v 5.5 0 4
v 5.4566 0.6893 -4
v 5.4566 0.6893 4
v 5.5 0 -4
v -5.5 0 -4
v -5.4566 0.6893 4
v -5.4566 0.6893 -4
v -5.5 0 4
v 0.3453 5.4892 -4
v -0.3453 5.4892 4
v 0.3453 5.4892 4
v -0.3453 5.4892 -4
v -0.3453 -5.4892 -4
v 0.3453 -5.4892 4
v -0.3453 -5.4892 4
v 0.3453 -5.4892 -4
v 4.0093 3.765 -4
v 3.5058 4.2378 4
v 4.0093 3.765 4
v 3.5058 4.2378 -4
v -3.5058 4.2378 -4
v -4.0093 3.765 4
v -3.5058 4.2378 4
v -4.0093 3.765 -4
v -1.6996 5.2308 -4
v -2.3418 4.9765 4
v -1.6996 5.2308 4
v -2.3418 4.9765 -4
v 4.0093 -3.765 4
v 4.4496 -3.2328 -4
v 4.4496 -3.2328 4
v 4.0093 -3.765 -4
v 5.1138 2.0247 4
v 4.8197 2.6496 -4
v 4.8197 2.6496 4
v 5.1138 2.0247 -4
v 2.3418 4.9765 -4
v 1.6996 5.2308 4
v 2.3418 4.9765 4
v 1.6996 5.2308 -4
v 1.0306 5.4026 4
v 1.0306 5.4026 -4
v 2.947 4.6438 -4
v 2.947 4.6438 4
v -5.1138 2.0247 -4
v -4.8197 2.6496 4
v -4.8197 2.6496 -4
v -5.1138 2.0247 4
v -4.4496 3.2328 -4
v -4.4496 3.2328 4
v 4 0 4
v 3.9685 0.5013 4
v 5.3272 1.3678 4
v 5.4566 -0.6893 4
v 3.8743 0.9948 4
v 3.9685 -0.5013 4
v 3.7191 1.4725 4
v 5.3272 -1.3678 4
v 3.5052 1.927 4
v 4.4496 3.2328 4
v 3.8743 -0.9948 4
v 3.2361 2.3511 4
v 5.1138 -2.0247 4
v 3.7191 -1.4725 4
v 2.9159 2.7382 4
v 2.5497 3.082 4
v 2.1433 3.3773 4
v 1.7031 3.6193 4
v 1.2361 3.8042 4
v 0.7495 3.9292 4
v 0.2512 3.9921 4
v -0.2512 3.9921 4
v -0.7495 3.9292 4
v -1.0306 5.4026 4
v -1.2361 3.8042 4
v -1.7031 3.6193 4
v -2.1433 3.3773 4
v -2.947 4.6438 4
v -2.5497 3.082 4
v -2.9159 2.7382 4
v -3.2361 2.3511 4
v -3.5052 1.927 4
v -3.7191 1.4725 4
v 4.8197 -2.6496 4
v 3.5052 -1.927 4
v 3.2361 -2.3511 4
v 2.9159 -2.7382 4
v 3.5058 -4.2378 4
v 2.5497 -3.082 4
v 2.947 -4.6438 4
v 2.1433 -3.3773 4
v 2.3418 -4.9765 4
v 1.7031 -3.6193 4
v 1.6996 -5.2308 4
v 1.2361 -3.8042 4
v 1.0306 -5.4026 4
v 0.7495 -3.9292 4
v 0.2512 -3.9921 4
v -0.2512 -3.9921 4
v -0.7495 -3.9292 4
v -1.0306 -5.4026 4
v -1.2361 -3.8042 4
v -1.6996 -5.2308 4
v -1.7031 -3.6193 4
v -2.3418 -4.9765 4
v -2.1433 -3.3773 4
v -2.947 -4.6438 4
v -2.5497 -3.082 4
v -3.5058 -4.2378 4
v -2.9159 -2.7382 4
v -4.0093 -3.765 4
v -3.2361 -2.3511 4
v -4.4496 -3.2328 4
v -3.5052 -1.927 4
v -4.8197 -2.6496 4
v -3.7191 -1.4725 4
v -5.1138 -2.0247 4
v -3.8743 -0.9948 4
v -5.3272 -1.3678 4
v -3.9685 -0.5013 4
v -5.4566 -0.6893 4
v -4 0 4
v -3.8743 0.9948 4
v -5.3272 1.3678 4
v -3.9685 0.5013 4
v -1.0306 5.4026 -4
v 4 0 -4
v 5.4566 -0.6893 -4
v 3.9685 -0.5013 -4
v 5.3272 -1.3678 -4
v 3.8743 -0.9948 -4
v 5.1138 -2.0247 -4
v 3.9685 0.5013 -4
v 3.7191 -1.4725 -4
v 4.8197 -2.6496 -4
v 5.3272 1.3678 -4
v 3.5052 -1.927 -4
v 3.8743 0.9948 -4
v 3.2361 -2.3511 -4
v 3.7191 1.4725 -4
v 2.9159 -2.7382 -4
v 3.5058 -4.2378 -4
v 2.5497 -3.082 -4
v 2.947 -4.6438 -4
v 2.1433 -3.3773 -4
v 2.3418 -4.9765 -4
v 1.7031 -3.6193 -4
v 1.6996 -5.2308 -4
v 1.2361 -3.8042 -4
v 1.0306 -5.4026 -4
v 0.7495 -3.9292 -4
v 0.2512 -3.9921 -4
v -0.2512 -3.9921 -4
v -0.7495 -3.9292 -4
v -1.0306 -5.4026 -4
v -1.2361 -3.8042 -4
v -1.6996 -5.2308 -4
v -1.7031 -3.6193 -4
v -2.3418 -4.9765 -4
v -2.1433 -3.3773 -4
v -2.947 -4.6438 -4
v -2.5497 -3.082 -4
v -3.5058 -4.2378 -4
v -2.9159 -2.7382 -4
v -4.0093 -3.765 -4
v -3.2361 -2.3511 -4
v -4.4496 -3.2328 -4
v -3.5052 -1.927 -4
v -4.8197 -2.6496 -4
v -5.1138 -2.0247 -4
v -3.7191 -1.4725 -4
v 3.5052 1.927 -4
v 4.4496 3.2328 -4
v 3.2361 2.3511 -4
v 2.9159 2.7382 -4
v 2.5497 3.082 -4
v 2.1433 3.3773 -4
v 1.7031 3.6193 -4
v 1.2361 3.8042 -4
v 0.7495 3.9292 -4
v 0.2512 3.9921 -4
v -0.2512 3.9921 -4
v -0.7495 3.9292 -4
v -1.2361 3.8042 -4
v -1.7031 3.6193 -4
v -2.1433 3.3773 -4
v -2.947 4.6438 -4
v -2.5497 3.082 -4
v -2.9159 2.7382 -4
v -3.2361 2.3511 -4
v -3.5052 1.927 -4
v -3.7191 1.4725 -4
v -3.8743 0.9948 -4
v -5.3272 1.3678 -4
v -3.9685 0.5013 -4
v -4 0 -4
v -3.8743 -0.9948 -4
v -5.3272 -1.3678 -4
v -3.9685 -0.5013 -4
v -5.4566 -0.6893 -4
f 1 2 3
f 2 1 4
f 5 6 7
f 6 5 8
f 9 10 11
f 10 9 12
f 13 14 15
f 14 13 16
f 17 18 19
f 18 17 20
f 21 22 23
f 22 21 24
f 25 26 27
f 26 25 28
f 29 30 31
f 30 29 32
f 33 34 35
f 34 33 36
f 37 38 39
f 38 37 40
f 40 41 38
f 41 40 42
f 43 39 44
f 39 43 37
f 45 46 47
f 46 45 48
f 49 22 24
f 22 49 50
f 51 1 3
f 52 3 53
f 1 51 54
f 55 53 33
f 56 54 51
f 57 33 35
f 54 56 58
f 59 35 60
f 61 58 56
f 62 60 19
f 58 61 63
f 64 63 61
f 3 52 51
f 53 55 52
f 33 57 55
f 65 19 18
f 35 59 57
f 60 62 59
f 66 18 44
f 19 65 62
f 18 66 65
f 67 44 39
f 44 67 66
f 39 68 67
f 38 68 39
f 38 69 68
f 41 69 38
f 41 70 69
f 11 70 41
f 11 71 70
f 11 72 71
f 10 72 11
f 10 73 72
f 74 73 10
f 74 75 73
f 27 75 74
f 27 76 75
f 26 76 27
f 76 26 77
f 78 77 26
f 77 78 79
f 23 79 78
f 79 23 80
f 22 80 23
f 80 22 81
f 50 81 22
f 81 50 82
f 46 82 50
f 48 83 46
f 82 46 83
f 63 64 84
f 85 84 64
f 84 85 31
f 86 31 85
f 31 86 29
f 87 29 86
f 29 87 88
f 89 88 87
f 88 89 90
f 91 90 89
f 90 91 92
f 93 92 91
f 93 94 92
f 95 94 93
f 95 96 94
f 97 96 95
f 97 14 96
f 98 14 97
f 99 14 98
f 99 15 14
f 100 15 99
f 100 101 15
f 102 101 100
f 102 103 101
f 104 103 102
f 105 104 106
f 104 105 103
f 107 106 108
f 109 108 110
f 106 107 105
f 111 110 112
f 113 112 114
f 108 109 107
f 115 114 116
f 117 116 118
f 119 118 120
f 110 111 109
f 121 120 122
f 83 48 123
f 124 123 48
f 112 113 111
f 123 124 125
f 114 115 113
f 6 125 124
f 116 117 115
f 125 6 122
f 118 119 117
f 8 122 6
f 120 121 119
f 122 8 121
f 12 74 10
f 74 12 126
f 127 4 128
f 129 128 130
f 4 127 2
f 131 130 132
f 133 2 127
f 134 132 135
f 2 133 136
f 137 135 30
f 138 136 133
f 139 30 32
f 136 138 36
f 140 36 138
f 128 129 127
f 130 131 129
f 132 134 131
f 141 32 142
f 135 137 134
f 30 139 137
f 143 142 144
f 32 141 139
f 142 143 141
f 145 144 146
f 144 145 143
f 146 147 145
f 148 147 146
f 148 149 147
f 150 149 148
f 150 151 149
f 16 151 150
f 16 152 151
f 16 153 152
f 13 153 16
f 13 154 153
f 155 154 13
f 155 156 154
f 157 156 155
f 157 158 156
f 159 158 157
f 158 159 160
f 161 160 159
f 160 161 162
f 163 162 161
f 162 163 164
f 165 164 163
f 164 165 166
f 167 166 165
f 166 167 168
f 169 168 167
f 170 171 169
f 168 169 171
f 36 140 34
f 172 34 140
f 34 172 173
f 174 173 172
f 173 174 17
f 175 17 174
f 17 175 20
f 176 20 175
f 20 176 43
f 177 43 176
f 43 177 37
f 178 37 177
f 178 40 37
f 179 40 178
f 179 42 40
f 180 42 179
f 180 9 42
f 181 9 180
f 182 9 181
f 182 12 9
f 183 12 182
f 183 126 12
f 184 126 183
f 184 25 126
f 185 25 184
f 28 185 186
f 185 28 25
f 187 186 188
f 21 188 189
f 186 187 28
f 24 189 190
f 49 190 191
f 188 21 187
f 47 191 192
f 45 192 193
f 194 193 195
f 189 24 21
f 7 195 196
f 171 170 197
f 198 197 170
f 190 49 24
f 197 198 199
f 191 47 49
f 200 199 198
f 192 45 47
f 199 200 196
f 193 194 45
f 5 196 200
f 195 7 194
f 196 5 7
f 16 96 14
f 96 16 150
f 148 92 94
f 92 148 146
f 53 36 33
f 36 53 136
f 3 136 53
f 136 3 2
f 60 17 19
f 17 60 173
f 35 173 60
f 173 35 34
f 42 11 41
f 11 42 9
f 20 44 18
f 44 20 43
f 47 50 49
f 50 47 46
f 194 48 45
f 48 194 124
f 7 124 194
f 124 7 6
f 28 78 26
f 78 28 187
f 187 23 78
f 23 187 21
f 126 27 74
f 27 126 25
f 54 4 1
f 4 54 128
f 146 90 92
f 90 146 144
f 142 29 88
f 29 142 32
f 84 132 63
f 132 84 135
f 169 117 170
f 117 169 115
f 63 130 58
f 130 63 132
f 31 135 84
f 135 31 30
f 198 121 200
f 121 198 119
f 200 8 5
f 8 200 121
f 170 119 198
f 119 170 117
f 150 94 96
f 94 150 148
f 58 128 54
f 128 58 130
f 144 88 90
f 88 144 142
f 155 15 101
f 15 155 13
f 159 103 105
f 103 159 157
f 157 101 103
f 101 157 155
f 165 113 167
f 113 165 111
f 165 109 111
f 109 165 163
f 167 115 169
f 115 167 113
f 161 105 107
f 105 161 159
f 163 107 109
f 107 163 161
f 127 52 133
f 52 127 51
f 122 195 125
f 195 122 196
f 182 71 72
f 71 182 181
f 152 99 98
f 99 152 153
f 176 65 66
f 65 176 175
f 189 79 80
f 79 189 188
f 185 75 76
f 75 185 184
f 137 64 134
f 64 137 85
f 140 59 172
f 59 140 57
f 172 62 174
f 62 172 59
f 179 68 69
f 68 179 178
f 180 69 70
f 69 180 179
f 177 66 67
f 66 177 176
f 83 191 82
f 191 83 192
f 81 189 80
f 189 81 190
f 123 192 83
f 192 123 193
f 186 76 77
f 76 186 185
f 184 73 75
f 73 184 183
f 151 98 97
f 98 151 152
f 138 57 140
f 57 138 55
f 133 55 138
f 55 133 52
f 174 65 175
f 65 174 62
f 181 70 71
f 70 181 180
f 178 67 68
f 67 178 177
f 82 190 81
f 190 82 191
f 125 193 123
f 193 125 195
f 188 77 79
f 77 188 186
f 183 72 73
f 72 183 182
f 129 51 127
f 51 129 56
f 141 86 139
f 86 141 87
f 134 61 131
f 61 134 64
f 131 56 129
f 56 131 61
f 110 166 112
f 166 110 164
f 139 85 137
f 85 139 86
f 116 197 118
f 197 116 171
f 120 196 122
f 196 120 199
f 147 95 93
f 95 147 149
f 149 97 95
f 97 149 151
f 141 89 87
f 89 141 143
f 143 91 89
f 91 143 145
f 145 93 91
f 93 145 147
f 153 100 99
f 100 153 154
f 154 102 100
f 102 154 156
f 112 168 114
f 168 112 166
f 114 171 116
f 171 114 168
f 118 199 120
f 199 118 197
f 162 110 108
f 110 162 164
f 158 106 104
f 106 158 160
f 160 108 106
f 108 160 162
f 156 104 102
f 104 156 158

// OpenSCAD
$fn = 50;


difference() {
	union() {
		translate(v = [0, 0, -4.0000000000]) {
			cylinder(h = 8, r = 5.5000000000);
		}
	}
	union() {
		translate(v = [0, 0, -100.0000000000]) {
			cylinder(h = 200, r = 4.0000000000);
		}
	}
}
